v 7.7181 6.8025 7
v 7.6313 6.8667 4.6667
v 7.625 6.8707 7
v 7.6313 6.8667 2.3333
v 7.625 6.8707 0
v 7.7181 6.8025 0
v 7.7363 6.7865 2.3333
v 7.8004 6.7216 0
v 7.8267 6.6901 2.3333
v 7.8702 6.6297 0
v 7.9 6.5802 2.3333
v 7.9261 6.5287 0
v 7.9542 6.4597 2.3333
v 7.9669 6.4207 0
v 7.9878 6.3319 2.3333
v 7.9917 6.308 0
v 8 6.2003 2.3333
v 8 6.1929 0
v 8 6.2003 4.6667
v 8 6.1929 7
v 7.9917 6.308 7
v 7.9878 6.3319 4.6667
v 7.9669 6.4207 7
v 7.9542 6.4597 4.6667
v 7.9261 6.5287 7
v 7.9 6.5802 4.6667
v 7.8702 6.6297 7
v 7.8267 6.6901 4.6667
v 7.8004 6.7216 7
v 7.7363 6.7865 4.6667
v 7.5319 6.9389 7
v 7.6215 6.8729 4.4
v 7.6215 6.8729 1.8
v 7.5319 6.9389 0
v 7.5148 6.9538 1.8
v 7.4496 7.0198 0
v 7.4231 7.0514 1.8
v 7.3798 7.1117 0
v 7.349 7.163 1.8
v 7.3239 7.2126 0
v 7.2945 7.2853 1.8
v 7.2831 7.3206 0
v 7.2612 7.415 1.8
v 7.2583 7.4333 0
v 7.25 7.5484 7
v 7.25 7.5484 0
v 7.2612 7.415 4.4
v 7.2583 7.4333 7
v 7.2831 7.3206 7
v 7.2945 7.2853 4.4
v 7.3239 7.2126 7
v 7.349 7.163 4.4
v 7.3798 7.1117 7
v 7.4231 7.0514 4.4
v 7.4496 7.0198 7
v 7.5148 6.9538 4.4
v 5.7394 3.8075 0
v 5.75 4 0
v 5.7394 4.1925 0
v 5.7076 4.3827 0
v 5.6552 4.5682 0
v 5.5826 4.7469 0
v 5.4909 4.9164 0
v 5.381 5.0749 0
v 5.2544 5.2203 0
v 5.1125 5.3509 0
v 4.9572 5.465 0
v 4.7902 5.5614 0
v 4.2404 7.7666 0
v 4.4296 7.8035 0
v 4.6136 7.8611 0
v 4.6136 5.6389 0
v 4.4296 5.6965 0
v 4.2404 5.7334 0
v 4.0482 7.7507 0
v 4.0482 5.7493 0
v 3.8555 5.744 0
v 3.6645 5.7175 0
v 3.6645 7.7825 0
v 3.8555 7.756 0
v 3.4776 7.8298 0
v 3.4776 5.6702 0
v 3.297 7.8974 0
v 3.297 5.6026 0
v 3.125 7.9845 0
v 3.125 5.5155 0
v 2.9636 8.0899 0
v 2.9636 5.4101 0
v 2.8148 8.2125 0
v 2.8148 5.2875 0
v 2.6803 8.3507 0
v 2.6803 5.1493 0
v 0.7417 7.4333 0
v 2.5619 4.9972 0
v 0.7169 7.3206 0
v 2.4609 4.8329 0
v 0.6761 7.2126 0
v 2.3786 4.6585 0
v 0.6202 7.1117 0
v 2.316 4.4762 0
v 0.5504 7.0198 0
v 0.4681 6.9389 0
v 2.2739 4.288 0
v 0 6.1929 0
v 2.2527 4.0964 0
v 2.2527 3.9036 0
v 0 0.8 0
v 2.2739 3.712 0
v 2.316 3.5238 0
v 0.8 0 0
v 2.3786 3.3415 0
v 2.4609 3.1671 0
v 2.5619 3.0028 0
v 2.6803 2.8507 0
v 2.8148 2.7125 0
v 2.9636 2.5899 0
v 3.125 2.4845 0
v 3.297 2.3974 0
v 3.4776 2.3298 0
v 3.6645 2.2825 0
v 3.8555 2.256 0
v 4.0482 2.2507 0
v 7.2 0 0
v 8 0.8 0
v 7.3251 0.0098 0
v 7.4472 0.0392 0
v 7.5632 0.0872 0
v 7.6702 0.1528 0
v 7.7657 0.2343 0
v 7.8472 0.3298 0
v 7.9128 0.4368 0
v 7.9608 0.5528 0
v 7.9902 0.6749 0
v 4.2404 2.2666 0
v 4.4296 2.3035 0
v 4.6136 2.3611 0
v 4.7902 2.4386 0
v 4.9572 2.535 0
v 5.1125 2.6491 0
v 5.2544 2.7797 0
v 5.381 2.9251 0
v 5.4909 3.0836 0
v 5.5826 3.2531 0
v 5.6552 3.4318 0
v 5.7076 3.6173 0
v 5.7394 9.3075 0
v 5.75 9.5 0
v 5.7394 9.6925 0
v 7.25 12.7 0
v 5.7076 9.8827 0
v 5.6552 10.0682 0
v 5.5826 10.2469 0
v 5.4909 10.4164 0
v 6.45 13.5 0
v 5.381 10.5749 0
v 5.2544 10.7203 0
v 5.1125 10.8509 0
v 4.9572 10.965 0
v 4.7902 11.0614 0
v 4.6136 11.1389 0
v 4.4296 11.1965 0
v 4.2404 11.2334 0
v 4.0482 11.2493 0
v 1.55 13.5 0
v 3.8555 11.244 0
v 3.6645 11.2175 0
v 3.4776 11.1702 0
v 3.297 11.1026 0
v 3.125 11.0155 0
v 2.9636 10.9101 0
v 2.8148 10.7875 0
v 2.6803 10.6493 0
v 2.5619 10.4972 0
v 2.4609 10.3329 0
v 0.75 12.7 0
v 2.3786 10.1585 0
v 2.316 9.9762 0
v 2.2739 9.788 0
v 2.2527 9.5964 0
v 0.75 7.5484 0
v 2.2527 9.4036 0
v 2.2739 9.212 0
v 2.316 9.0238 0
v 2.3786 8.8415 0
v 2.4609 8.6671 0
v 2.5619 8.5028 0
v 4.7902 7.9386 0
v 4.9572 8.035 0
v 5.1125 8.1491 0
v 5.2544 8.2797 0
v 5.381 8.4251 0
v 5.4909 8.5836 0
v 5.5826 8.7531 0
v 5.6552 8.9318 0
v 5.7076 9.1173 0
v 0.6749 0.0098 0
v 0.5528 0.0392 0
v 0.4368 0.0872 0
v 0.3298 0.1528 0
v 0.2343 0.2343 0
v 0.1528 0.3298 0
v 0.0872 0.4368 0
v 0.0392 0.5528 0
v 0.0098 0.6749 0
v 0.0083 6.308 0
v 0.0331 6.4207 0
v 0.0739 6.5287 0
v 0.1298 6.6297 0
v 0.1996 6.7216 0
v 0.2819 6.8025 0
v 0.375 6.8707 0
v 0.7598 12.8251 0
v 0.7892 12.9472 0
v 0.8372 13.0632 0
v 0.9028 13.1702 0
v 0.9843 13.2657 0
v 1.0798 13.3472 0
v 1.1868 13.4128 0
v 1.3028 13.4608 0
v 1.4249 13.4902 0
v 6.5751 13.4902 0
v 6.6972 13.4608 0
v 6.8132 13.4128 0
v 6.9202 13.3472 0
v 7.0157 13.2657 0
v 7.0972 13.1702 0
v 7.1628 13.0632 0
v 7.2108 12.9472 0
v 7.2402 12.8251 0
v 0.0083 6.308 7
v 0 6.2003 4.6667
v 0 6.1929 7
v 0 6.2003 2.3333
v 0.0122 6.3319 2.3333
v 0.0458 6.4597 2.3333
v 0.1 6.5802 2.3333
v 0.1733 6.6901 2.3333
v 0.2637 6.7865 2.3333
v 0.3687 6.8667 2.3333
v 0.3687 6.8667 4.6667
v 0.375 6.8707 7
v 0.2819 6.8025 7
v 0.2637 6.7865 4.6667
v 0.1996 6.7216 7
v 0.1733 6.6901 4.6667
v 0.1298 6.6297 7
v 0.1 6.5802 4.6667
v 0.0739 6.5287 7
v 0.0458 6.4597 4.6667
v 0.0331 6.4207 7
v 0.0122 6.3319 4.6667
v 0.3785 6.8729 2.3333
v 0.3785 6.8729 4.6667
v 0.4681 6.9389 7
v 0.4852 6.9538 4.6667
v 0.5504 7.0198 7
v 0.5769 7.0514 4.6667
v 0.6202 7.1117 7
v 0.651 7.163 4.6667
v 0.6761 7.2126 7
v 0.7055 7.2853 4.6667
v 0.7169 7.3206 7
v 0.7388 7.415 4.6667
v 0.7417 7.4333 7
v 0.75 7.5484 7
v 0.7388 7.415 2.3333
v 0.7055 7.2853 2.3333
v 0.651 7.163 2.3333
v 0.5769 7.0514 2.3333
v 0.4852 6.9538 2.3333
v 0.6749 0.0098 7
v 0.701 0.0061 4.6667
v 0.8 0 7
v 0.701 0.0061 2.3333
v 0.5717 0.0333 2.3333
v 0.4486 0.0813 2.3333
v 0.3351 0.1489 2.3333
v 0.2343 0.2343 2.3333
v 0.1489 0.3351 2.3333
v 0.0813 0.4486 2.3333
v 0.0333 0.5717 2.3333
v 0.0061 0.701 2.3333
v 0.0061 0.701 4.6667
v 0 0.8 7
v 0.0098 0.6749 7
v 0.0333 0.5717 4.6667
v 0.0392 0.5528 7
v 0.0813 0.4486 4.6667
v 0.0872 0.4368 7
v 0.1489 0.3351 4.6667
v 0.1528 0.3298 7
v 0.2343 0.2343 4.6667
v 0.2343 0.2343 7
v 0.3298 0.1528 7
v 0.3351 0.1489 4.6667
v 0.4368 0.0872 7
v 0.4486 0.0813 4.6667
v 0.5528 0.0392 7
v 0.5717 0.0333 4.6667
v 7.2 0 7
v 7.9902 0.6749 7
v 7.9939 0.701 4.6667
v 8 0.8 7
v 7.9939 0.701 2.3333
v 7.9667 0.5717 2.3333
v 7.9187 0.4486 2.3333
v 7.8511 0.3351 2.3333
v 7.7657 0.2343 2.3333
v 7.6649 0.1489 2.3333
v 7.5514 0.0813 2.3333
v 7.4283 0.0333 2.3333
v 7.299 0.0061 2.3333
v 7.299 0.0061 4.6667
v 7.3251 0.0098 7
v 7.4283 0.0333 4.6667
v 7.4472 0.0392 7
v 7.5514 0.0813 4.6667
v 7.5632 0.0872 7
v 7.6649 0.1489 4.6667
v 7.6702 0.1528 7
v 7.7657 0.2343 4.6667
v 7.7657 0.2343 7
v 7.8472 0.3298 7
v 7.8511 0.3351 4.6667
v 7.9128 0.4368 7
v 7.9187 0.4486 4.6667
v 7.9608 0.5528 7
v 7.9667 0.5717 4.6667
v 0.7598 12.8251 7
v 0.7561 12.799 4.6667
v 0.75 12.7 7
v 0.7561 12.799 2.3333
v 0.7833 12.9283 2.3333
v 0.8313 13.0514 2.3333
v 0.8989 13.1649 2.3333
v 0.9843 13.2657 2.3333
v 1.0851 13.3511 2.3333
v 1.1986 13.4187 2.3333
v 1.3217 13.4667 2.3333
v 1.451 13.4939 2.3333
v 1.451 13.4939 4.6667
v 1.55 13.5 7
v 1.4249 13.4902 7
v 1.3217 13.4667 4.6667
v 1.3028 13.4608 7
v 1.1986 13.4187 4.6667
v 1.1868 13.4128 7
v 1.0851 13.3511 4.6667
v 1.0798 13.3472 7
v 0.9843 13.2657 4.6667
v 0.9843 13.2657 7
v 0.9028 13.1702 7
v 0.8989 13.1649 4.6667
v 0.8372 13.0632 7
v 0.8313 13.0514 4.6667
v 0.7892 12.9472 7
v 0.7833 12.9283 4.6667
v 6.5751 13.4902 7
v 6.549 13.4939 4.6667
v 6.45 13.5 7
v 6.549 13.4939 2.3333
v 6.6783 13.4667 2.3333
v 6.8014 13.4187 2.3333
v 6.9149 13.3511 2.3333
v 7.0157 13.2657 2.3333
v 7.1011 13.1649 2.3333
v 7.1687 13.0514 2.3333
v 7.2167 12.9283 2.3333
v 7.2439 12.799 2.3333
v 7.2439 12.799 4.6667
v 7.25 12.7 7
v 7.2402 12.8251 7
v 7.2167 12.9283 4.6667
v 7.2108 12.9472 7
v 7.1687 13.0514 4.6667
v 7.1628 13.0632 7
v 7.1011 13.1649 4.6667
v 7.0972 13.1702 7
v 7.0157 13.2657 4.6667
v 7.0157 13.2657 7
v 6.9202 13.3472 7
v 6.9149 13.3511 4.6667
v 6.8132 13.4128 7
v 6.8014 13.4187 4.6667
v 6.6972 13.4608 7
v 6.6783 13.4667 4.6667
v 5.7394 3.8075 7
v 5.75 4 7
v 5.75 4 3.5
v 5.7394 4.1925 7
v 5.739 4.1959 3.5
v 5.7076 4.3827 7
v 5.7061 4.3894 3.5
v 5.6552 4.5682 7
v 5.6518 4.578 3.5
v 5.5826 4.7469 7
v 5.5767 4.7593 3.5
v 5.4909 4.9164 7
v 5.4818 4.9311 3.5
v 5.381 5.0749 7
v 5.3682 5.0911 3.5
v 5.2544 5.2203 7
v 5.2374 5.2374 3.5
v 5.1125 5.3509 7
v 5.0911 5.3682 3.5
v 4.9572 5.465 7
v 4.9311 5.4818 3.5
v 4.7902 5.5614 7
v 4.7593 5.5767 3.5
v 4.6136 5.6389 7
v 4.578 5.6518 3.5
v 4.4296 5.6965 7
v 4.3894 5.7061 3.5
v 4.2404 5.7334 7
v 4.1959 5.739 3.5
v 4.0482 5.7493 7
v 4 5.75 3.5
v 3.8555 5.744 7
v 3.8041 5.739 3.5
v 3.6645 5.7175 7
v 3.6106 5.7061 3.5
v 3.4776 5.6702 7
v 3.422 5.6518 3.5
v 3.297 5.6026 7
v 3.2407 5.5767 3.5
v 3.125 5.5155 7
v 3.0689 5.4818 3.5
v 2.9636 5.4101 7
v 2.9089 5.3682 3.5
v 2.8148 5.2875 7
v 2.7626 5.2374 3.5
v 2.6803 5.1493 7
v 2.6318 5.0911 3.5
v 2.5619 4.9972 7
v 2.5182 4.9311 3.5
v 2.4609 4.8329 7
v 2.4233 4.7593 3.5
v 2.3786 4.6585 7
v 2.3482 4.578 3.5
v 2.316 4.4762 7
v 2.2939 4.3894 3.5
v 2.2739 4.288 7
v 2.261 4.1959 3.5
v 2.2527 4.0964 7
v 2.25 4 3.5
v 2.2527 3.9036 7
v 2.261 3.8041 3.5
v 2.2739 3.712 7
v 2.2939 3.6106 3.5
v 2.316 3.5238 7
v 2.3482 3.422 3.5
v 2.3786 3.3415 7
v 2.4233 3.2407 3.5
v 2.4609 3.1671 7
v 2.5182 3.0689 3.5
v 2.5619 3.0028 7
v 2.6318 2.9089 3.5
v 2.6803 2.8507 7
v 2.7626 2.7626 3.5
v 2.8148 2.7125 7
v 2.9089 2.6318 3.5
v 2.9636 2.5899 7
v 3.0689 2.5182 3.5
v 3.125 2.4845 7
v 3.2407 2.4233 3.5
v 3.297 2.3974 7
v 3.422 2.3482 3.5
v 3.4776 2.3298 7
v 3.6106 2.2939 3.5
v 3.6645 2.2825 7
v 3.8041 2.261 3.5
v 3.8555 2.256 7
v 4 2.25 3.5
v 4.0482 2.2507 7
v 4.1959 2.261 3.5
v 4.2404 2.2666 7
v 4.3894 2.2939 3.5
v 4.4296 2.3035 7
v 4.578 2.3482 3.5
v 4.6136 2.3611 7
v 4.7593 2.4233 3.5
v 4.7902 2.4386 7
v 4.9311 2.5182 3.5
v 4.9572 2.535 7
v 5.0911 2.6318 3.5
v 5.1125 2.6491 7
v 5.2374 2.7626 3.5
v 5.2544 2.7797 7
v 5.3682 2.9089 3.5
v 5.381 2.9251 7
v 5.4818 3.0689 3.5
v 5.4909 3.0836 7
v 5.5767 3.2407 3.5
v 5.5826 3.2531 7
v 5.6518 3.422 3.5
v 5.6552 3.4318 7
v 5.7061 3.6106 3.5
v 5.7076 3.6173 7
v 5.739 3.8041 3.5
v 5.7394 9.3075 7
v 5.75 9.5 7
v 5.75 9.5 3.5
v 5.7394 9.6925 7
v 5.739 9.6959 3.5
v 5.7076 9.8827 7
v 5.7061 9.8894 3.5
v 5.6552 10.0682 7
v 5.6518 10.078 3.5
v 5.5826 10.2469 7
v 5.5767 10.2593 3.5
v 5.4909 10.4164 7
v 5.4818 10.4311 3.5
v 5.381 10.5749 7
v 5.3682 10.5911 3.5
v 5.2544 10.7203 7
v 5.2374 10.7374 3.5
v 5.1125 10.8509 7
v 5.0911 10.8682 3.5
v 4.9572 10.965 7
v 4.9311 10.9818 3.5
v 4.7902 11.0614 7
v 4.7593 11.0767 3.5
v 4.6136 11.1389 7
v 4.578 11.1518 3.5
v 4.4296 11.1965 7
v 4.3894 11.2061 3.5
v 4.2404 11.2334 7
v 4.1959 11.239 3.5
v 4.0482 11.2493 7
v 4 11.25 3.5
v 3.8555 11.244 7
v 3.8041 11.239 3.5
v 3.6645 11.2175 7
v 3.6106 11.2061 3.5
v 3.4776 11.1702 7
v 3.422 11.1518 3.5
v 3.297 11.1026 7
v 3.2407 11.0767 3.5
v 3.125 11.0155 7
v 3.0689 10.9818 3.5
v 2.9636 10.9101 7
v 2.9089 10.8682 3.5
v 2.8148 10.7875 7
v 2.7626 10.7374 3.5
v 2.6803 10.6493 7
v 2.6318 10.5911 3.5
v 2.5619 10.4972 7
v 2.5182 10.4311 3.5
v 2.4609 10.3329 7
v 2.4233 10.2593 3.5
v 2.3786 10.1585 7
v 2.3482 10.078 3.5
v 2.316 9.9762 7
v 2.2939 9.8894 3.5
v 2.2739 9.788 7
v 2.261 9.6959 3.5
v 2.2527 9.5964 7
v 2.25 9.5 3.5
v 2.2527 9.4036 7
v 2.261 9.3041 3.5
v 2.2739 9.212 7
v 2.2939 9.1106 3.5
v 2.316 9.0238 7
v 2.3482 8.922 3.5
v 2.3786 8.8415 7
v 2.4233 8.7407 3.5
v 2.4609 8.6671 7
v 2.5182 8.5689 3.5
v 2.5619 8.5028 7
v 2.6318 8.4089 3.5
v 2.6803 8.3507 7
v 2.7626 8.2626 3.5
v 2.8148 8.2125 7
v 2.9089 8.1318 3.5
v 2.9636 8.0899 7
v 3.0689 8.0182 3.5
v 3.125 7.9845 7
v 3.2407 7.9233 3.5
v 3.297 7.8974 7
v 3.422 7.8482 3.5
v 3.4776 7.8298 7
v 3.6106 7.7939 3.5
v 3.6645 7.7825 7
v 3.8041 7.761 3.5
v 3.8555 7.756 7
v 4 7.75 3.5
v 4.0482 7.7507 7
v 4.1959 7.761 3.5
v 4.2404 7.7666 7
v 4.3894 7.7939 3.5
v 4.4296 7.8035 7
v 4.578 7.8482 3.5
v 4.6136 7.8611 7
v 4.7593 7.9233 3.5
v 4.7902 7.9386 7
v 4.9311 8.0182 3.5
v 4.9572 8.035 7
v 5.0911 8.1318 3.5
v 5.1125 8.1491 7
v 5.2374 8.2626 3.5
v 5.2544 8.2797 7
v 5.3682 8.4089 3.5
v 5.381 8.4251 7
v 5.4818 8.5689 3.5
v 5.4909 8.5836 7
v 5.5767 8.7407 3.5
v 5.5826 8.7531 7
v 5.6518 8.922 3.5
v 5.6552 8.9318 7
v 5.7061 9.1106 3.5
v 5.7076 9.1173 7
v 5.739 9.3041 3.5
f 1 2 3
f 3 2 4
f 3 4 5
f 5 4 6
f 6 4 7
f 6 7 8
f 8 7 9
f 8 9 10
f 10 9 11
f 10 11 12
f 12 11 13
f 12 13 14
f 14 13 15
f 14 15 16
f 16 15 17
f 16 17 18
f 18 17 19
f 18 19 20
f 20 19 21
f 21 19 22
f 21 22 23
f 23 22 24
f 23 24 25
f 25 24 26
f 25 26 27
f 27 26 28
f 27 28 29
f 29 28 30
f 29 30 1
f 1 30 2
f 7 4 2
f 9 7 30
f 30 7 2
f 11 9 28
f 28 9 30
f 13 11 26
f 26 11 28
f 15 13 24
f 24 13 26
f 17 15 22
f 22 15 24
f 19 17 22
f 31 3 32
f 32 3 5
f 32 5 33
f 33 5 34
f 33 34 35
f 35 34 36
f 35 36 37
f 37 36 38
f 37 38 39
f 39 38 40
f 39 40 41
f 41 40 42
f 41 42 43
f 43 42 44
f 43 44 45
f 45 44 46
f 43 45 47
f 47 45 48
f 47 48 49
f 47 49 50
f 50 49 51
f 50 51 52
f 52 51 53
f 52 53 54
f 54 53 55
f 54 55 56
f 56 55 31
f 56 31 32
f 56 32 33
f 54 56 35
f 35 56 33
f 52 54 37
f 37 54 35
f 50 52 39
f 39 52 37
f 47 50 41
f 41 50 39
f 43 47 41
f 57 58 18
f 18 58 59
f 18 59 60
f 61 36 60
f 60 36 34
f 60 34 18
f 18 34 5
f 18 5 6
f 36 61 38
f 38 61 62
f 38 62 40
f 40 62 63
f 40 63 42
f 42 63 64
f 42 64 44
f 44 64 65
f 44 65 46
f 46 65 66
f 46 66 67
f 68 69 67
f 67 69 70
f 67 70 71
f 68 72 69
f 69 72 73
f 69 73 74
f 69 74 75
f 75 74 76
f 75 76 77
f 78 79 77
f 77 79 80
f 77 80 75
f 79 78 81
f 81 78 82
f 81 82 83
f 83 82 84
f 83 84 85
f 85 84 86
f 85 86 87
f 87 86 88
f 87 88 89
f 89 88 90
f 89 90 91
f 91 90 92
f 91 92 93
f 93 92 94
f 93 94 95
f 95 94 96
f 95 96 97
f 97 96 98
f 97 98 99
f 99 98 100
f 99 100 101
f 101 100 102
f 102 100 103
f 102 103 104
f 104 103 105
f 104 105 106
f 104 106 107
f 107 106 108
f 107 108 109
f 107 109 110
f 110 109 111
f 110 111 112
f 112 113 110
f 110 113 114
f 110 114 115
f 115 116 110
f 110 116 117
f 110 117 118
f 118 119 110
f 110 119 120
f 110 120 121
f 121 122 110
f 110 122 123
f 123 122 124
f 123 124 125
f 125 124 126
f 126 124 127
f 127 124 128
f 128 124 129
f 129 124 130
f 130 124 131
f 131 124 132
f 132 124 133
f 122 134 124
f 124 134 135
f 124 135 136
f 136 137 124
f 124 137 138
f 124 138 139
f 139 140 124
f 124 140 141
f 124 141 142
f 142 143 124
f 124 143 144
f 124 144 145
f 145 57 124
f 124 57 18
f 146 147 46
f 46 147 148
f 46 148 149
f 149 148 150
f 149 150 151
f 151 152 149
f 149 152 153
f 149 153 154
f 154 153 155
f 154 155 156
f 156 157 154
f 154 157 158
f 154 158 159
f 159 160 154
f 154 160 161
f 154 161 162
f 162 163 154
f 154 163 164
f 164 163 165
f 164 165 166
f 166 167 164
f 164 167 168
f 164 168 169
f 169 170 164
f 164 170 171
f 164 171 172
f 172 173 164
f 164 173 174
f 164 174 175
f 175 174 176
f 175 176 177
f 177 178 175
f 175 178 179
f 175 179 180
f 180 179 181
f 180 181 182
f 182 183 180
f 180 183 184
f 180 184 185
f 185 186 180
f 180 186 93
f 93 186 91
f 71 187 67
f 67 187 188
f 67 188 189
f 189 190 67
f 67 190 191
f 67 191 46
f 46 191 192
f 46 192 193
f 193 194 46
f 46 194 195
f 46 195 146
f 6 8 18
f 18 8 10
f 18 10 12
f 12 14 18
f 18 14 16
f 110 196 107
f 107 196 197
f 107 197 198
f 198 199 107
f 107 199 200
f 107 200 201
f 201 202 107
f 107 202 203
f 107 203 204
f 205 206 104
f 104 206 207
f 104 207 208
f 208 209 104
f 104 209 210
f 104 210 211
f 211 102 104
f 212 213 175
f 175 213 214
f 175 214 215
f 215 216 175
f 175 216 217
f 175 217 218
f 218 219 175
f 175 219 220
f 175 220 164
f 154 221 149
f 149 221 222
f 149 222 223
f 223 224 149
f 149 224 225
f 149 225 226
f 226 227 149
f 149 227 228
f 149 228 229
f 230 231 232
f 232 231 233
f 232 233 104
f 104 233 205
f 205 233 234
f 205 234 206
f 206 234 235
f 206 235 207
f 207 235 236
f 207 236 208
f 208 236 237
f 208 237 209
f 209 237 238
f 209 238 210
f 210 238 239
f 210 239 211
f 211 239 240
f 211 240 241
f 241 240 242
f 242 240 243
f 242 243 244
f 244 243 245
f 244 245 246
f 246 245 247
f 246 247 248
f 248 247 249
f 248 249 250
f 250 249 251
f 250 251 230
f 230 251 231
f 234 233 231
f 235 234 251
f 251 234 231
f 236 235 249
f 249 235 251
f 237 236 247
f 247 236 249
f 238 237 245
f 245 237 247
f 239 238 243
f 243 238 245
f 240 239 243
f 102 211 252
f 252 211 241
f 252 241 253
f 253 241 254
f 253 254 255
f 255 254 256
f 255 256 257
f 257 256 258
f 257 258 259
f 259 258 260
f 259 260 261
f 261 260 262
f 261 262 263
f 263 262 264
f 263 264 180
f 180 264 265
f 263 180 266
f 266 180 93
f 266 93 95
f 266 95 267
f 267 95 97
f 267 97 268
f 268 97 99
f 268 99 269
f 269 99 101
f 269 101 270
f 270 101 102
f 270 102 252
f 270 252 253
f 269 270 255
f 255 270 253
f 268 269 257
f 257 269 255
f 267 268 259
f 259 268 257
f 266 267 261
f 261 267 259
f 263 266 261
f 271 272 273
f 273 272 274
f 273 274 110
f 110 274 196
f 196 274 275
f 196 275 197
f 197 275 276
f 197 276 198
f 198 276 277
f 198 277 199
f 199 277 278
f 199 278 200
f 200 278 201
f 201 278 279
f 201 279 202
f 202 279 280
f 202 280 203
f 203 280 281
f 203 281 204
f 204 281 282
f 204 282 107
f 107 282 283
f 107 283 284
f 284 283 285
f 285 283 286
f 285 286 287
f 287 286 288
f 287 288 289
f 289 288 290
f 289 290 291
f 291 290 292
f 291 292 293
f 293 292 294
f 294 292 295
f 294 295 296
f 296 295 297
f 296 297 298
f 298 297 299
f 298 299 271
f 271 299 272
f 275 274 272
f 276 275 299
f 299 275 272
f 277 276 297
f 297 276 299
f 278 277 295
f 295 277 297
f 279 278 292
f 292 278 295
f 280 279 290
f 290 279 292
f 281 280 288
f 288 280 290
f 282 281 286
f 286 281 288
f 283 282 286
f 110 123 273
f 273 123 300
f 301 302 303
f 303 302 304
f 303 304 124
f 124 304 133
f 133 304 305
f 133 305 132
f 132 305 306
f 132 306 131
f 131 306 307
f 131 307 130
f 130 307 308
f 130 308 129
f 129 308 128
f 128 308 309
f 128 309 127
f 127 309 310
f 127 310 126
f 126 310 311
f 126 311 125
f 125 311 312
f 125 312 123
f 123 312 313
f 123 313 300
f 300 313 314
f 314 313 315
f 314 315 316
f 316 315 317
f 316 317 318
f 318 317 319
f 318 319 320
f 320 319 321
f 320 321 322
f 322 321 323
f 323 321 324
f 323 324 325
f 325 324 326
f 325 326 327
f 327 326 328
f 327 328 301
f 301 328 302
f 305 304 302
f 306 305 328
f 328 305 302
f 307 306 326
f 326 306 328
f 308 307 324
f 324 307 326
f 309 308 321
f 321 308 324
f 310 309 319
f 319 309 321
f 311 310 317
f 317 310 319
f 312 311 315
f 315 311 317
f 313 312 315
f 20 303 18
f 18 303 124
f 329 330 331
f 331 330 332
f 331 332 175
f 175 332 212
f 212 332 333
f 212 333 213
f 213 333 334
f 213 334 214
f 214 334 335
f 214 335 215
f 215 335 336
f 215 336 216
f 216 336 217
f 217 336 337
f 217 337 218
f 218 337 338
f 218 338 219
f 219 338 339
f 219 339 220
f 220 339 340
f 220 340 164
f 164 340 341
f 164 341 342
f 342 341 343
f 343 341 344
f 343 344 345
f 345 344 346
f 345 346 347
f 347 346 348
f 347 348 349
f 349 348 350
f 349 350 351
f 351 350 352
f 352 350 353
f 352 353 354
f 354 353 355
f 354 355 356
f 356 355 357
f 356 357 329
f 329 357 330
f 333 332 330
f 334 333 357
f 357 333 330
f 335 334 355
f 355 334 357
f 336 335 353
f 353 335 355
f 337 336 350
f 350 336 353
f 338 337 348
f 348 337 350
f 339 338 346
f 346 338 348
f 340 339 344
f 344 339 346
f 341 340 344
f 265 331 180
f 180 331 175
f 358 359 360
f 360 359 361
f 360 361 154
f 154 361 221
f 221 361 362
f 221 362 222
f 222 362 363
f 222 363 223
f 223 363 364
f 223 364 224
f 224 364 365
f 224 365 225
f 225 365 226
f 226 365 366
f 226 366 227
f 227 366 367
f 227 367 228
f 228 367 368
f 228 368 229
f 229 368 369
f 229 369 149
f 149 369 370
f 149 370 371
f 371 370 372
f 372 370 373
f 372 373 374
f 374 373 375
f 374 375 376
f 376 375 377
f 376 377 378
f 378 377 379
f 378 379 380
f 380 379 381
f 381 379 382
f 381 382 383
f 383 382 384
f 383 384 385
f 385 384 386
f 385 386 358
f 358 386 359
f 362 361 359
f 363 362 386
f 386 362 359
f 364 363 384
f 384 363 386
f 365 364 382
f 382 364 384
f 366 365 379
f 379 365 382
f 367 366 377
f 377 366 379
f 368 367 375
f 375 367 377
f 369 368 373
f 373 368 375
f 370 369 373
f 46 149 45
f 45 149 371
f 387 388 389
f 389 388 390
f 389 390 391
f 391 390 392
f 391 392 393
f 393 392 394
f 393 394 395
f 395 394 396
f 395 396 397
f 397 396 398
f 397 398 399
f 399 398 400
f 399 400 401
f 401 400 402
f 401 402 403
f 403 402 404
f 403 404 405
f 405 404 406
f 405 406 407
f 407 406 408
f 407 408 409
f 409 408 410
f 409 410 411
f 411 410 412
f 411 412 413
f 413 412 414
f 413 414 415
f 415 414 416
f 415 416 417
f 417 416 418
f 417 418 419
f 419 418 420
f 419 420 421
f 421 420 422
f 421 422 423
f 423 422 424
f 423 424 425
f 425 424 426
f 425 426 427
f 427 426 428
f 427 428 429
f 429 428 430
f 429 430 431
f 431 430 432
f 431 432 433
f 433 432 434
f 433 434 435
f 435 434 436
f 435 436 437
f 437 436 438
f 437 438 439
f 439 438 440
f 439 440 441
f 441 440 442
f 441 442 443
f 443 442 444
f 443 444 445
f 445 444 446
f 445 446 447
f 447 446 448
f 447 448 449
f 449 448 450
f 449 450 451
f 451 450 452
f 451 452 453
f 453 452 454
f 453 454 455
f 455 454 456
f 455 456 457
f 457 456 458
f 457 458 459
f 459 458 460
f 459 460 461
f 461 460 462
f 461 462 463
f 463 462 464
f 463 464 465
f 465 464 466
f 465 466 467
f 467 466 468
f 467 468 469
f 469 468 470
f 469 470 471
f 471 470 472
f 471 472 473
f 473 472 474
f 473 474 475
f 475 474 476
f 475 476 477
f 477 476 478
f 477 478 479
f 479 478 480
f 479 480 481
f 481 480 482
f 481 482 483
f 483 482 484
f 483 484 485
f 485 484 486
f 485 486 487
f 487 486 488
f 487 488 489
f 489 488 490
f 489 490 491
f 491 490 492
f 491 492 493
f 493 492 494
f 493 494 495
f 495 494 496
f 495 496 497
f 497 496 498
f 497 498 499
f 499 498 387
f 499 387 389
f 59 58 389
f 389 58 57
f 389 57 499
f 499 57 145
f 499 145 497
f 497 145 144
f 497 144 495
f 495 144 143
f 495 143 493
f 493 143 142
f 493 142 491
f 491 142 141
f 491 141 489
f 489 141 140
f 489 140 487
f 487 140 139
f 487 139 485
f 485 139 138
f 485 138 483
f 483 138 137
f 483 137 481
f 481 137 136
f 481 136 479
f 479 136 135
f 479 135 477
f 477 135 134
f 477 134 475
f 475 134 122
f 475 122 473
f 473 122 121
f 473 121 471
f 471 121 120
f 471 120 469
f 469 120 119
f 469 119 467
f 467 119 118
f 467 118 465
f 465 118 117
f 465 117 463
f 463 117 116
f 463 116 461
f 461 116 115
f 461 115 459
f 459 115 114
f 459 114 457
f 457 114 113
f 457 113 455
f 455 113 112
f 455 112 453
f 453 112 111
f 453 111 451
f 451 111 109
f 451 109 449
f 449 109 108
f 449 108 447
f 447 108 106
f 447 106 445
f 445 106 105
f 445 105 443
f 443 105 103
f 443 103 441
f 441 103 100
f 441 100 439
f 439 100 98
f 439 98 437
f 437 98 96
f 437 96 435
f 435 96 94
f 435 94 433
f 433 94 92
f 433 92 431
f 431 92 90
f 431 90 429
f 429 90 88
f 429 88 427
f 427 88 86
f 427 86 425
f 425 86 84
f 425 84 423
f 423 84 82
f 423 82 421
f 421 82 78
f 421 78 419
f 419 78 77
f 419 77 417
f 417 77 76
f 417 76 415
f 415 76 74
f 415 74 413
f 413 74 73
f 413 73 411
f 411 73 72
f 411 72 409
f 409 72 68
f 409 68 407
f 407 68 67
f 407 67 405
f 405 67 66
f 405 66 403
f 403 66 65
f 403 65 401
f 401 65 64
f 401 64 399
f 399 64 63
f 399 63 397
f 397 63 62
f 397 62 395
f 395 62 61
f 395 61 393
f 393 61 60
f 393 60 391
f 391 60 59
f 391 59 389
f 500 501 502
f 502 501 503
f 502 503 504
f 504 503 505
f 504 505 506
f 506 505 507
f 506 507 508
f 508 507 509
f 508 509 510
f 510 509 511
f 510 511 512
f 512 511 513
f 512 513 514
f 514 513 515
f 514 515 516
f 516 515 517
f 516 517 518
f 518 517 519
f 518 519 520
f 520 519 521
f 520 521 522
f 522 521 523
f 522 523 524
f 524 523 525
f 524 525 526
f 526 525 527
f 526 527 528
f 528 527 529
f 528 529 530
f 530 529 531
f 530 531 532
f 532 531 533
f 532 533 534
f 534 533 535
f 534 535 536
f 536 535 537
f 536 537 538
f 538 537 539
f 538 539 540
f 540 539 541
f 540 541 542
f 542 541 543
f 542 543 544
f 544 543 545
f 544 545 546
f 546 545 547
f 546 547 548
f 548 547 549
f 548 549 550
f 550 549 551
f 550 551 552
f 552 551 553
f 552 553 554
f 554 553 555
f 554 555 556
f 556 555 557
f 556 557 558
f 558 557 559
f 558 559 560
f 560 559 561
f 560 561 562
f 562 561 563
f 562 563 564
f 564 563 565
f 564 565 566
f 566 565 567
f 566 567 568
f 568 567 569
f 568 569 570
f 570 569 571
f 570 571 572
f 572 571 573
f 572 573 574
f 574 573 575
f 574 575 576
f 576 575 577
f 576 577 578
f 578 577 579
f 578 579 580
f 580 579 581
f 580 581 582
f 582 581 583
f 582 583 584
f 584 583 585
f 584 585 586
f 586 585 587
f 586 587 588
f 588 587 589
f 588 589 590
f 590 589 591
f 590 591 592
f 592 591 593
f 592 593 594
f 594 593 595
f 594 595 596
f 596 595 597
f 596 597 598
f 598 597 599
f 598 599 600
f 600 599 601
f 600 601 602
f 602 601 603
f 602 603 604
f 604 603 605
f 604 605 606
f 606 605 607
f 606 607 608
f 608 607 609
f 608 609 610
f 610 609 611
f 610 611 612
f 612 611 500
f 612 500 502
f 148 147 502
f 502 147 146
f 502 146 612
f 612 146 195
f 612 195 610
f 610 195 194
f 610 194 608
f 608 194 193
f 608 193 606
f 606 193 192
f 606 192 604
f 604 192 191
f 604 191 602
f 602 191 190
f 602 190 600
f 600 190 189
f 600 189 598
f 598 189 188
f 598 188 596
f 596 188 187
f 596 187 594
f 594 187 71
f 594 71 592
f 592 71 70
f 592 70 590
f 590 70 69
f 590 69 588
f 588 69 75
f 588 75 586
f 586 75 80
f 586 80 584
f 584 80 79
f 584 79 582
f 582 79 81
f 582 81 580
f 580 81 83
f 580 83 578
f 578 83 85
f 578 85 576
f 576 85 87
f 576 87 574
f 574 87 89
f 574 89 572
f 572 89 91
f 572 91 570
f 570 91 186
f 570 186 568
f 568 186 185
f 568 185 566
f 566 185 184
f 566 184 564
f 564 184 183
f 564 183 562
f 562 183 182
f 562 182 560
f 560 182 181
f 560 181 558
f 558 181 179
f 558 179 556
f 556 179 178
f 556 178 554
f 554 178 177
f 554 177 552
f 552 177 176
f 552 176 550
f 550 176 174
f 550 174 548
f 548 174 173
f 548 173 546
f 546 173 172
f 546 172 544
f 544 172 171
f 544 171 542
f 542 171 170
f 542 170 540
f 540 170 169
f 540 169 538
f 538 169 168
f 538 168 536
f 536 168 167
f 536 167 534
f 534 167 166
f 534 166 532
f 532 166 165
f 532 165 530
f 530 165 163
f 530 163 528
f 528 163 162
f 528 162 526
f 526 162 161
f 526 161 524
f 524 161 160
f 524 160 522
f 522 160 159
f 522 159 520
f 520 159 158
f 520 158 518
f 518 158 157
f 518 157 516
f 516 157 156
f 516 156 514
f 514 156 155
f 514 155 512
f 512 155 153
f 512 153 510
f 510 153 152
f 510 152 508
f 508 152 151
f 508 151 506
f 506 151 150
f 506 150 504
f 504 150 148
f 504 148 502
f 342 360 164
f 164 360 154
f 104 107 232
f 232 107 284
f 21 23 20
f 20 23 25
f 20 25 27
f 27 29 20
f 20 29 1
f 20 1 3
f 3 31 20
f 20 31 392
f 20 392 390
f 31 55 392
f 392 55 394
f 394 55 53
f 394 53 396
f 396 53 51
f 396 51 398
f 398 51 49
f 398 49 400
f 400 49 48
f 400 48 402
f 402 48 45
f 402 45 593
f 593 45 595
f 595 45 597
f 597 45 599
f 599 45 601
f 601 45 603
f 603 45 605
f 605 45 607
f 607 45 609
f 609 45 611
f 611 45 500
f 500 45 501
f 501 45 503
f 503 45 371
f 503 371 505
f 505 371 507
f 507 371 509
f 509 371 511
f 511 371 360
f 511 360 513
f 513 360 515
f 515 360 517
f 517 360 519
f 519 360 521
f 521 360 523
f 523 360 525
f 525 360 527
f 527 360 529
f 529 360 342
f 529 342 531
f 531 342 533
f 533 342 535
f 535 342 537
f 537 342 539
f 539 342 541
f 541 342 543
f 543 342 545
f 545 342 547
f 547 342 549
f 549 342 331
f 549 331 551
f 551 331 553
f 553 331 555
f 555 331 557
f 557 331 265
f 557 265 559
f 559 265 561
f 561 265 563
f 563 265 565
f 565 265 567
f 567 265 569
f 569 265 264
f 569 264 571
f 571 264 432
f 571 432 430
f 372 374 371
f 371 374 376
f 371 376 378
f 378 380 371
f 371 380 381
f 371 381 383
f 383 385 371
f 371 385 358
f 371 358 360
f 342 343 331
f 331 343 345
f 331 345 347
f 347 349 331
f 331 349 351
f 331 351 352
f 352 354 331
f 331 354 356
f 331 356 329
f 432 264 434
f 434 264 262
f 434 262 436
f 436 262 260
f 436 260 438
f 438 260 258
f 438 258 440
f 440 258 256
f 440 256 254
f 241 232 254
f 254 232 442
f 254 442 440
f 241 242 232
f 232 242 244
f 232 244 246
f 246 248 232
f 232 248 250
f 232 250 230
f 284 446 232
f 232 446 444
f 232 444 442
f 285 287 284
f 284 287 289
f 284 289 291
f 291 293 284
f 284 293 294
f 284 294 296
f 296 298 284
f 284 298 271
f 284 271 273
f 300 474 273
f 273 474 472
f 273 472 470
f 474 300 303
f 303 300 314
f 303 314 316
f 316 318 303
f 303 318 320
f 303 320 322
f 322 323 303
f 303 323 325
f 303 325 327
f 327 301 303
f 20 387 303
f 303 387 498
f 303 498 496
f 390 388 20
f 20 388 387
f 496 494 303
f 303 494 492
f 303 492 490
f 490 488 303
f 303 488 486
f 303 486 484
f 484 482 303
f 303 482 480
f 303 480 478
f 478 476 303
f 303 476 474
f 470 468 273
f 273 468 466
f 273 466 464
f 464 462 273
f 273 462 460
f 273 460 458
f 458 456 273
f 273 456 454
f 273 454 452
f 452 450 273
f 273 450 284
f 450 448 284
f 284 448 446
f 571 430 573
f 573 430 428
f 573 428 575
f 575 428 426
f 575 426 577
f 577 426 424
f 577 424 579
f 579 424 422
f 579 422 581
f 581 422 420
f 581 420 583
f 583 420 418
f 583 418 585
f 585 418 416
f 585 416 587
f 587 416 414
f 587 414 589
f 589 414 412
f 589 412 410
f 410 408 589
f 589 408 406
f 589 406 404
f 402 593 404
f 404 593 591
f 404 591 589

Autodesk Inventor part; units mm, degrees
ref_plane "YZ Plane" through (0, 0, 0) normal (1, 0, 0) x (0, 1, 0)
ref_plane "XZ Plane" through (0, 0, 0) normal (0, 1, 0) x (-1, 0, 0)
ref_plane "XY Plane" through (0, 0, 0) normal (0, 0, 1) x (1, 0, 0)
sketch "Sketch1" plane through (0, 0, 0) normal (0, 0, 1) x (1, 0, 0)
  circle A0 centre (4, 9.5) radius 1.75
  circle A1 centre (4, 4) radius 1.75
  line L0 (4, 9.5) -> (4, 4) construction
  line L1 (0.75, 6.75) -> (0.75, 13.5)
  line L2 (0.75, 13.5) -> (7.25, 13.5)
  line L3 (7.25, 13.5) -> (7.25, 6.75)
  line L4 (0, 6.75) -> (0, 0)
  line L5 (0, 0) -> (8, 0)
  line L6 (8, 0) -> (8, 6.75)
  line L7 (0, 6.75) -> (0.75, 6.75)
  line L8 (7.25, 6.75) -> (8, 6.75)
  line L9 (0.75, 6.75) -> (7.25, 6.75) construction
  line L10 (4, 4) -> (4, 0) construction
  line L11 (4, 9.5) -> (4, 13.5) construction
  point P0 (4, 6.75)
  dimension "d0" = 3.5
  dimension "d1" = 3.5
  dimension "d2" = 5.5
  dimension "d3" = 6.5
  dimension "d4" = 8
  dimension "d5" = 13.5
extrude "Extrusion1" add sketch "Sketch1" along normal blind 7
fillet "Fillet1" radius 0.8 8 edges at (7.25, 13.5, 3.5) (0.75, 13.5, 3.5) (8, 0, 3.5) (0, 0, 3.5) (0.75, 6.75, 3.5) (0, 6.75, 3.5) (8, 6.75, 3.5) (7.25, 6.75, 3.5)
properties part number "Tplug"
